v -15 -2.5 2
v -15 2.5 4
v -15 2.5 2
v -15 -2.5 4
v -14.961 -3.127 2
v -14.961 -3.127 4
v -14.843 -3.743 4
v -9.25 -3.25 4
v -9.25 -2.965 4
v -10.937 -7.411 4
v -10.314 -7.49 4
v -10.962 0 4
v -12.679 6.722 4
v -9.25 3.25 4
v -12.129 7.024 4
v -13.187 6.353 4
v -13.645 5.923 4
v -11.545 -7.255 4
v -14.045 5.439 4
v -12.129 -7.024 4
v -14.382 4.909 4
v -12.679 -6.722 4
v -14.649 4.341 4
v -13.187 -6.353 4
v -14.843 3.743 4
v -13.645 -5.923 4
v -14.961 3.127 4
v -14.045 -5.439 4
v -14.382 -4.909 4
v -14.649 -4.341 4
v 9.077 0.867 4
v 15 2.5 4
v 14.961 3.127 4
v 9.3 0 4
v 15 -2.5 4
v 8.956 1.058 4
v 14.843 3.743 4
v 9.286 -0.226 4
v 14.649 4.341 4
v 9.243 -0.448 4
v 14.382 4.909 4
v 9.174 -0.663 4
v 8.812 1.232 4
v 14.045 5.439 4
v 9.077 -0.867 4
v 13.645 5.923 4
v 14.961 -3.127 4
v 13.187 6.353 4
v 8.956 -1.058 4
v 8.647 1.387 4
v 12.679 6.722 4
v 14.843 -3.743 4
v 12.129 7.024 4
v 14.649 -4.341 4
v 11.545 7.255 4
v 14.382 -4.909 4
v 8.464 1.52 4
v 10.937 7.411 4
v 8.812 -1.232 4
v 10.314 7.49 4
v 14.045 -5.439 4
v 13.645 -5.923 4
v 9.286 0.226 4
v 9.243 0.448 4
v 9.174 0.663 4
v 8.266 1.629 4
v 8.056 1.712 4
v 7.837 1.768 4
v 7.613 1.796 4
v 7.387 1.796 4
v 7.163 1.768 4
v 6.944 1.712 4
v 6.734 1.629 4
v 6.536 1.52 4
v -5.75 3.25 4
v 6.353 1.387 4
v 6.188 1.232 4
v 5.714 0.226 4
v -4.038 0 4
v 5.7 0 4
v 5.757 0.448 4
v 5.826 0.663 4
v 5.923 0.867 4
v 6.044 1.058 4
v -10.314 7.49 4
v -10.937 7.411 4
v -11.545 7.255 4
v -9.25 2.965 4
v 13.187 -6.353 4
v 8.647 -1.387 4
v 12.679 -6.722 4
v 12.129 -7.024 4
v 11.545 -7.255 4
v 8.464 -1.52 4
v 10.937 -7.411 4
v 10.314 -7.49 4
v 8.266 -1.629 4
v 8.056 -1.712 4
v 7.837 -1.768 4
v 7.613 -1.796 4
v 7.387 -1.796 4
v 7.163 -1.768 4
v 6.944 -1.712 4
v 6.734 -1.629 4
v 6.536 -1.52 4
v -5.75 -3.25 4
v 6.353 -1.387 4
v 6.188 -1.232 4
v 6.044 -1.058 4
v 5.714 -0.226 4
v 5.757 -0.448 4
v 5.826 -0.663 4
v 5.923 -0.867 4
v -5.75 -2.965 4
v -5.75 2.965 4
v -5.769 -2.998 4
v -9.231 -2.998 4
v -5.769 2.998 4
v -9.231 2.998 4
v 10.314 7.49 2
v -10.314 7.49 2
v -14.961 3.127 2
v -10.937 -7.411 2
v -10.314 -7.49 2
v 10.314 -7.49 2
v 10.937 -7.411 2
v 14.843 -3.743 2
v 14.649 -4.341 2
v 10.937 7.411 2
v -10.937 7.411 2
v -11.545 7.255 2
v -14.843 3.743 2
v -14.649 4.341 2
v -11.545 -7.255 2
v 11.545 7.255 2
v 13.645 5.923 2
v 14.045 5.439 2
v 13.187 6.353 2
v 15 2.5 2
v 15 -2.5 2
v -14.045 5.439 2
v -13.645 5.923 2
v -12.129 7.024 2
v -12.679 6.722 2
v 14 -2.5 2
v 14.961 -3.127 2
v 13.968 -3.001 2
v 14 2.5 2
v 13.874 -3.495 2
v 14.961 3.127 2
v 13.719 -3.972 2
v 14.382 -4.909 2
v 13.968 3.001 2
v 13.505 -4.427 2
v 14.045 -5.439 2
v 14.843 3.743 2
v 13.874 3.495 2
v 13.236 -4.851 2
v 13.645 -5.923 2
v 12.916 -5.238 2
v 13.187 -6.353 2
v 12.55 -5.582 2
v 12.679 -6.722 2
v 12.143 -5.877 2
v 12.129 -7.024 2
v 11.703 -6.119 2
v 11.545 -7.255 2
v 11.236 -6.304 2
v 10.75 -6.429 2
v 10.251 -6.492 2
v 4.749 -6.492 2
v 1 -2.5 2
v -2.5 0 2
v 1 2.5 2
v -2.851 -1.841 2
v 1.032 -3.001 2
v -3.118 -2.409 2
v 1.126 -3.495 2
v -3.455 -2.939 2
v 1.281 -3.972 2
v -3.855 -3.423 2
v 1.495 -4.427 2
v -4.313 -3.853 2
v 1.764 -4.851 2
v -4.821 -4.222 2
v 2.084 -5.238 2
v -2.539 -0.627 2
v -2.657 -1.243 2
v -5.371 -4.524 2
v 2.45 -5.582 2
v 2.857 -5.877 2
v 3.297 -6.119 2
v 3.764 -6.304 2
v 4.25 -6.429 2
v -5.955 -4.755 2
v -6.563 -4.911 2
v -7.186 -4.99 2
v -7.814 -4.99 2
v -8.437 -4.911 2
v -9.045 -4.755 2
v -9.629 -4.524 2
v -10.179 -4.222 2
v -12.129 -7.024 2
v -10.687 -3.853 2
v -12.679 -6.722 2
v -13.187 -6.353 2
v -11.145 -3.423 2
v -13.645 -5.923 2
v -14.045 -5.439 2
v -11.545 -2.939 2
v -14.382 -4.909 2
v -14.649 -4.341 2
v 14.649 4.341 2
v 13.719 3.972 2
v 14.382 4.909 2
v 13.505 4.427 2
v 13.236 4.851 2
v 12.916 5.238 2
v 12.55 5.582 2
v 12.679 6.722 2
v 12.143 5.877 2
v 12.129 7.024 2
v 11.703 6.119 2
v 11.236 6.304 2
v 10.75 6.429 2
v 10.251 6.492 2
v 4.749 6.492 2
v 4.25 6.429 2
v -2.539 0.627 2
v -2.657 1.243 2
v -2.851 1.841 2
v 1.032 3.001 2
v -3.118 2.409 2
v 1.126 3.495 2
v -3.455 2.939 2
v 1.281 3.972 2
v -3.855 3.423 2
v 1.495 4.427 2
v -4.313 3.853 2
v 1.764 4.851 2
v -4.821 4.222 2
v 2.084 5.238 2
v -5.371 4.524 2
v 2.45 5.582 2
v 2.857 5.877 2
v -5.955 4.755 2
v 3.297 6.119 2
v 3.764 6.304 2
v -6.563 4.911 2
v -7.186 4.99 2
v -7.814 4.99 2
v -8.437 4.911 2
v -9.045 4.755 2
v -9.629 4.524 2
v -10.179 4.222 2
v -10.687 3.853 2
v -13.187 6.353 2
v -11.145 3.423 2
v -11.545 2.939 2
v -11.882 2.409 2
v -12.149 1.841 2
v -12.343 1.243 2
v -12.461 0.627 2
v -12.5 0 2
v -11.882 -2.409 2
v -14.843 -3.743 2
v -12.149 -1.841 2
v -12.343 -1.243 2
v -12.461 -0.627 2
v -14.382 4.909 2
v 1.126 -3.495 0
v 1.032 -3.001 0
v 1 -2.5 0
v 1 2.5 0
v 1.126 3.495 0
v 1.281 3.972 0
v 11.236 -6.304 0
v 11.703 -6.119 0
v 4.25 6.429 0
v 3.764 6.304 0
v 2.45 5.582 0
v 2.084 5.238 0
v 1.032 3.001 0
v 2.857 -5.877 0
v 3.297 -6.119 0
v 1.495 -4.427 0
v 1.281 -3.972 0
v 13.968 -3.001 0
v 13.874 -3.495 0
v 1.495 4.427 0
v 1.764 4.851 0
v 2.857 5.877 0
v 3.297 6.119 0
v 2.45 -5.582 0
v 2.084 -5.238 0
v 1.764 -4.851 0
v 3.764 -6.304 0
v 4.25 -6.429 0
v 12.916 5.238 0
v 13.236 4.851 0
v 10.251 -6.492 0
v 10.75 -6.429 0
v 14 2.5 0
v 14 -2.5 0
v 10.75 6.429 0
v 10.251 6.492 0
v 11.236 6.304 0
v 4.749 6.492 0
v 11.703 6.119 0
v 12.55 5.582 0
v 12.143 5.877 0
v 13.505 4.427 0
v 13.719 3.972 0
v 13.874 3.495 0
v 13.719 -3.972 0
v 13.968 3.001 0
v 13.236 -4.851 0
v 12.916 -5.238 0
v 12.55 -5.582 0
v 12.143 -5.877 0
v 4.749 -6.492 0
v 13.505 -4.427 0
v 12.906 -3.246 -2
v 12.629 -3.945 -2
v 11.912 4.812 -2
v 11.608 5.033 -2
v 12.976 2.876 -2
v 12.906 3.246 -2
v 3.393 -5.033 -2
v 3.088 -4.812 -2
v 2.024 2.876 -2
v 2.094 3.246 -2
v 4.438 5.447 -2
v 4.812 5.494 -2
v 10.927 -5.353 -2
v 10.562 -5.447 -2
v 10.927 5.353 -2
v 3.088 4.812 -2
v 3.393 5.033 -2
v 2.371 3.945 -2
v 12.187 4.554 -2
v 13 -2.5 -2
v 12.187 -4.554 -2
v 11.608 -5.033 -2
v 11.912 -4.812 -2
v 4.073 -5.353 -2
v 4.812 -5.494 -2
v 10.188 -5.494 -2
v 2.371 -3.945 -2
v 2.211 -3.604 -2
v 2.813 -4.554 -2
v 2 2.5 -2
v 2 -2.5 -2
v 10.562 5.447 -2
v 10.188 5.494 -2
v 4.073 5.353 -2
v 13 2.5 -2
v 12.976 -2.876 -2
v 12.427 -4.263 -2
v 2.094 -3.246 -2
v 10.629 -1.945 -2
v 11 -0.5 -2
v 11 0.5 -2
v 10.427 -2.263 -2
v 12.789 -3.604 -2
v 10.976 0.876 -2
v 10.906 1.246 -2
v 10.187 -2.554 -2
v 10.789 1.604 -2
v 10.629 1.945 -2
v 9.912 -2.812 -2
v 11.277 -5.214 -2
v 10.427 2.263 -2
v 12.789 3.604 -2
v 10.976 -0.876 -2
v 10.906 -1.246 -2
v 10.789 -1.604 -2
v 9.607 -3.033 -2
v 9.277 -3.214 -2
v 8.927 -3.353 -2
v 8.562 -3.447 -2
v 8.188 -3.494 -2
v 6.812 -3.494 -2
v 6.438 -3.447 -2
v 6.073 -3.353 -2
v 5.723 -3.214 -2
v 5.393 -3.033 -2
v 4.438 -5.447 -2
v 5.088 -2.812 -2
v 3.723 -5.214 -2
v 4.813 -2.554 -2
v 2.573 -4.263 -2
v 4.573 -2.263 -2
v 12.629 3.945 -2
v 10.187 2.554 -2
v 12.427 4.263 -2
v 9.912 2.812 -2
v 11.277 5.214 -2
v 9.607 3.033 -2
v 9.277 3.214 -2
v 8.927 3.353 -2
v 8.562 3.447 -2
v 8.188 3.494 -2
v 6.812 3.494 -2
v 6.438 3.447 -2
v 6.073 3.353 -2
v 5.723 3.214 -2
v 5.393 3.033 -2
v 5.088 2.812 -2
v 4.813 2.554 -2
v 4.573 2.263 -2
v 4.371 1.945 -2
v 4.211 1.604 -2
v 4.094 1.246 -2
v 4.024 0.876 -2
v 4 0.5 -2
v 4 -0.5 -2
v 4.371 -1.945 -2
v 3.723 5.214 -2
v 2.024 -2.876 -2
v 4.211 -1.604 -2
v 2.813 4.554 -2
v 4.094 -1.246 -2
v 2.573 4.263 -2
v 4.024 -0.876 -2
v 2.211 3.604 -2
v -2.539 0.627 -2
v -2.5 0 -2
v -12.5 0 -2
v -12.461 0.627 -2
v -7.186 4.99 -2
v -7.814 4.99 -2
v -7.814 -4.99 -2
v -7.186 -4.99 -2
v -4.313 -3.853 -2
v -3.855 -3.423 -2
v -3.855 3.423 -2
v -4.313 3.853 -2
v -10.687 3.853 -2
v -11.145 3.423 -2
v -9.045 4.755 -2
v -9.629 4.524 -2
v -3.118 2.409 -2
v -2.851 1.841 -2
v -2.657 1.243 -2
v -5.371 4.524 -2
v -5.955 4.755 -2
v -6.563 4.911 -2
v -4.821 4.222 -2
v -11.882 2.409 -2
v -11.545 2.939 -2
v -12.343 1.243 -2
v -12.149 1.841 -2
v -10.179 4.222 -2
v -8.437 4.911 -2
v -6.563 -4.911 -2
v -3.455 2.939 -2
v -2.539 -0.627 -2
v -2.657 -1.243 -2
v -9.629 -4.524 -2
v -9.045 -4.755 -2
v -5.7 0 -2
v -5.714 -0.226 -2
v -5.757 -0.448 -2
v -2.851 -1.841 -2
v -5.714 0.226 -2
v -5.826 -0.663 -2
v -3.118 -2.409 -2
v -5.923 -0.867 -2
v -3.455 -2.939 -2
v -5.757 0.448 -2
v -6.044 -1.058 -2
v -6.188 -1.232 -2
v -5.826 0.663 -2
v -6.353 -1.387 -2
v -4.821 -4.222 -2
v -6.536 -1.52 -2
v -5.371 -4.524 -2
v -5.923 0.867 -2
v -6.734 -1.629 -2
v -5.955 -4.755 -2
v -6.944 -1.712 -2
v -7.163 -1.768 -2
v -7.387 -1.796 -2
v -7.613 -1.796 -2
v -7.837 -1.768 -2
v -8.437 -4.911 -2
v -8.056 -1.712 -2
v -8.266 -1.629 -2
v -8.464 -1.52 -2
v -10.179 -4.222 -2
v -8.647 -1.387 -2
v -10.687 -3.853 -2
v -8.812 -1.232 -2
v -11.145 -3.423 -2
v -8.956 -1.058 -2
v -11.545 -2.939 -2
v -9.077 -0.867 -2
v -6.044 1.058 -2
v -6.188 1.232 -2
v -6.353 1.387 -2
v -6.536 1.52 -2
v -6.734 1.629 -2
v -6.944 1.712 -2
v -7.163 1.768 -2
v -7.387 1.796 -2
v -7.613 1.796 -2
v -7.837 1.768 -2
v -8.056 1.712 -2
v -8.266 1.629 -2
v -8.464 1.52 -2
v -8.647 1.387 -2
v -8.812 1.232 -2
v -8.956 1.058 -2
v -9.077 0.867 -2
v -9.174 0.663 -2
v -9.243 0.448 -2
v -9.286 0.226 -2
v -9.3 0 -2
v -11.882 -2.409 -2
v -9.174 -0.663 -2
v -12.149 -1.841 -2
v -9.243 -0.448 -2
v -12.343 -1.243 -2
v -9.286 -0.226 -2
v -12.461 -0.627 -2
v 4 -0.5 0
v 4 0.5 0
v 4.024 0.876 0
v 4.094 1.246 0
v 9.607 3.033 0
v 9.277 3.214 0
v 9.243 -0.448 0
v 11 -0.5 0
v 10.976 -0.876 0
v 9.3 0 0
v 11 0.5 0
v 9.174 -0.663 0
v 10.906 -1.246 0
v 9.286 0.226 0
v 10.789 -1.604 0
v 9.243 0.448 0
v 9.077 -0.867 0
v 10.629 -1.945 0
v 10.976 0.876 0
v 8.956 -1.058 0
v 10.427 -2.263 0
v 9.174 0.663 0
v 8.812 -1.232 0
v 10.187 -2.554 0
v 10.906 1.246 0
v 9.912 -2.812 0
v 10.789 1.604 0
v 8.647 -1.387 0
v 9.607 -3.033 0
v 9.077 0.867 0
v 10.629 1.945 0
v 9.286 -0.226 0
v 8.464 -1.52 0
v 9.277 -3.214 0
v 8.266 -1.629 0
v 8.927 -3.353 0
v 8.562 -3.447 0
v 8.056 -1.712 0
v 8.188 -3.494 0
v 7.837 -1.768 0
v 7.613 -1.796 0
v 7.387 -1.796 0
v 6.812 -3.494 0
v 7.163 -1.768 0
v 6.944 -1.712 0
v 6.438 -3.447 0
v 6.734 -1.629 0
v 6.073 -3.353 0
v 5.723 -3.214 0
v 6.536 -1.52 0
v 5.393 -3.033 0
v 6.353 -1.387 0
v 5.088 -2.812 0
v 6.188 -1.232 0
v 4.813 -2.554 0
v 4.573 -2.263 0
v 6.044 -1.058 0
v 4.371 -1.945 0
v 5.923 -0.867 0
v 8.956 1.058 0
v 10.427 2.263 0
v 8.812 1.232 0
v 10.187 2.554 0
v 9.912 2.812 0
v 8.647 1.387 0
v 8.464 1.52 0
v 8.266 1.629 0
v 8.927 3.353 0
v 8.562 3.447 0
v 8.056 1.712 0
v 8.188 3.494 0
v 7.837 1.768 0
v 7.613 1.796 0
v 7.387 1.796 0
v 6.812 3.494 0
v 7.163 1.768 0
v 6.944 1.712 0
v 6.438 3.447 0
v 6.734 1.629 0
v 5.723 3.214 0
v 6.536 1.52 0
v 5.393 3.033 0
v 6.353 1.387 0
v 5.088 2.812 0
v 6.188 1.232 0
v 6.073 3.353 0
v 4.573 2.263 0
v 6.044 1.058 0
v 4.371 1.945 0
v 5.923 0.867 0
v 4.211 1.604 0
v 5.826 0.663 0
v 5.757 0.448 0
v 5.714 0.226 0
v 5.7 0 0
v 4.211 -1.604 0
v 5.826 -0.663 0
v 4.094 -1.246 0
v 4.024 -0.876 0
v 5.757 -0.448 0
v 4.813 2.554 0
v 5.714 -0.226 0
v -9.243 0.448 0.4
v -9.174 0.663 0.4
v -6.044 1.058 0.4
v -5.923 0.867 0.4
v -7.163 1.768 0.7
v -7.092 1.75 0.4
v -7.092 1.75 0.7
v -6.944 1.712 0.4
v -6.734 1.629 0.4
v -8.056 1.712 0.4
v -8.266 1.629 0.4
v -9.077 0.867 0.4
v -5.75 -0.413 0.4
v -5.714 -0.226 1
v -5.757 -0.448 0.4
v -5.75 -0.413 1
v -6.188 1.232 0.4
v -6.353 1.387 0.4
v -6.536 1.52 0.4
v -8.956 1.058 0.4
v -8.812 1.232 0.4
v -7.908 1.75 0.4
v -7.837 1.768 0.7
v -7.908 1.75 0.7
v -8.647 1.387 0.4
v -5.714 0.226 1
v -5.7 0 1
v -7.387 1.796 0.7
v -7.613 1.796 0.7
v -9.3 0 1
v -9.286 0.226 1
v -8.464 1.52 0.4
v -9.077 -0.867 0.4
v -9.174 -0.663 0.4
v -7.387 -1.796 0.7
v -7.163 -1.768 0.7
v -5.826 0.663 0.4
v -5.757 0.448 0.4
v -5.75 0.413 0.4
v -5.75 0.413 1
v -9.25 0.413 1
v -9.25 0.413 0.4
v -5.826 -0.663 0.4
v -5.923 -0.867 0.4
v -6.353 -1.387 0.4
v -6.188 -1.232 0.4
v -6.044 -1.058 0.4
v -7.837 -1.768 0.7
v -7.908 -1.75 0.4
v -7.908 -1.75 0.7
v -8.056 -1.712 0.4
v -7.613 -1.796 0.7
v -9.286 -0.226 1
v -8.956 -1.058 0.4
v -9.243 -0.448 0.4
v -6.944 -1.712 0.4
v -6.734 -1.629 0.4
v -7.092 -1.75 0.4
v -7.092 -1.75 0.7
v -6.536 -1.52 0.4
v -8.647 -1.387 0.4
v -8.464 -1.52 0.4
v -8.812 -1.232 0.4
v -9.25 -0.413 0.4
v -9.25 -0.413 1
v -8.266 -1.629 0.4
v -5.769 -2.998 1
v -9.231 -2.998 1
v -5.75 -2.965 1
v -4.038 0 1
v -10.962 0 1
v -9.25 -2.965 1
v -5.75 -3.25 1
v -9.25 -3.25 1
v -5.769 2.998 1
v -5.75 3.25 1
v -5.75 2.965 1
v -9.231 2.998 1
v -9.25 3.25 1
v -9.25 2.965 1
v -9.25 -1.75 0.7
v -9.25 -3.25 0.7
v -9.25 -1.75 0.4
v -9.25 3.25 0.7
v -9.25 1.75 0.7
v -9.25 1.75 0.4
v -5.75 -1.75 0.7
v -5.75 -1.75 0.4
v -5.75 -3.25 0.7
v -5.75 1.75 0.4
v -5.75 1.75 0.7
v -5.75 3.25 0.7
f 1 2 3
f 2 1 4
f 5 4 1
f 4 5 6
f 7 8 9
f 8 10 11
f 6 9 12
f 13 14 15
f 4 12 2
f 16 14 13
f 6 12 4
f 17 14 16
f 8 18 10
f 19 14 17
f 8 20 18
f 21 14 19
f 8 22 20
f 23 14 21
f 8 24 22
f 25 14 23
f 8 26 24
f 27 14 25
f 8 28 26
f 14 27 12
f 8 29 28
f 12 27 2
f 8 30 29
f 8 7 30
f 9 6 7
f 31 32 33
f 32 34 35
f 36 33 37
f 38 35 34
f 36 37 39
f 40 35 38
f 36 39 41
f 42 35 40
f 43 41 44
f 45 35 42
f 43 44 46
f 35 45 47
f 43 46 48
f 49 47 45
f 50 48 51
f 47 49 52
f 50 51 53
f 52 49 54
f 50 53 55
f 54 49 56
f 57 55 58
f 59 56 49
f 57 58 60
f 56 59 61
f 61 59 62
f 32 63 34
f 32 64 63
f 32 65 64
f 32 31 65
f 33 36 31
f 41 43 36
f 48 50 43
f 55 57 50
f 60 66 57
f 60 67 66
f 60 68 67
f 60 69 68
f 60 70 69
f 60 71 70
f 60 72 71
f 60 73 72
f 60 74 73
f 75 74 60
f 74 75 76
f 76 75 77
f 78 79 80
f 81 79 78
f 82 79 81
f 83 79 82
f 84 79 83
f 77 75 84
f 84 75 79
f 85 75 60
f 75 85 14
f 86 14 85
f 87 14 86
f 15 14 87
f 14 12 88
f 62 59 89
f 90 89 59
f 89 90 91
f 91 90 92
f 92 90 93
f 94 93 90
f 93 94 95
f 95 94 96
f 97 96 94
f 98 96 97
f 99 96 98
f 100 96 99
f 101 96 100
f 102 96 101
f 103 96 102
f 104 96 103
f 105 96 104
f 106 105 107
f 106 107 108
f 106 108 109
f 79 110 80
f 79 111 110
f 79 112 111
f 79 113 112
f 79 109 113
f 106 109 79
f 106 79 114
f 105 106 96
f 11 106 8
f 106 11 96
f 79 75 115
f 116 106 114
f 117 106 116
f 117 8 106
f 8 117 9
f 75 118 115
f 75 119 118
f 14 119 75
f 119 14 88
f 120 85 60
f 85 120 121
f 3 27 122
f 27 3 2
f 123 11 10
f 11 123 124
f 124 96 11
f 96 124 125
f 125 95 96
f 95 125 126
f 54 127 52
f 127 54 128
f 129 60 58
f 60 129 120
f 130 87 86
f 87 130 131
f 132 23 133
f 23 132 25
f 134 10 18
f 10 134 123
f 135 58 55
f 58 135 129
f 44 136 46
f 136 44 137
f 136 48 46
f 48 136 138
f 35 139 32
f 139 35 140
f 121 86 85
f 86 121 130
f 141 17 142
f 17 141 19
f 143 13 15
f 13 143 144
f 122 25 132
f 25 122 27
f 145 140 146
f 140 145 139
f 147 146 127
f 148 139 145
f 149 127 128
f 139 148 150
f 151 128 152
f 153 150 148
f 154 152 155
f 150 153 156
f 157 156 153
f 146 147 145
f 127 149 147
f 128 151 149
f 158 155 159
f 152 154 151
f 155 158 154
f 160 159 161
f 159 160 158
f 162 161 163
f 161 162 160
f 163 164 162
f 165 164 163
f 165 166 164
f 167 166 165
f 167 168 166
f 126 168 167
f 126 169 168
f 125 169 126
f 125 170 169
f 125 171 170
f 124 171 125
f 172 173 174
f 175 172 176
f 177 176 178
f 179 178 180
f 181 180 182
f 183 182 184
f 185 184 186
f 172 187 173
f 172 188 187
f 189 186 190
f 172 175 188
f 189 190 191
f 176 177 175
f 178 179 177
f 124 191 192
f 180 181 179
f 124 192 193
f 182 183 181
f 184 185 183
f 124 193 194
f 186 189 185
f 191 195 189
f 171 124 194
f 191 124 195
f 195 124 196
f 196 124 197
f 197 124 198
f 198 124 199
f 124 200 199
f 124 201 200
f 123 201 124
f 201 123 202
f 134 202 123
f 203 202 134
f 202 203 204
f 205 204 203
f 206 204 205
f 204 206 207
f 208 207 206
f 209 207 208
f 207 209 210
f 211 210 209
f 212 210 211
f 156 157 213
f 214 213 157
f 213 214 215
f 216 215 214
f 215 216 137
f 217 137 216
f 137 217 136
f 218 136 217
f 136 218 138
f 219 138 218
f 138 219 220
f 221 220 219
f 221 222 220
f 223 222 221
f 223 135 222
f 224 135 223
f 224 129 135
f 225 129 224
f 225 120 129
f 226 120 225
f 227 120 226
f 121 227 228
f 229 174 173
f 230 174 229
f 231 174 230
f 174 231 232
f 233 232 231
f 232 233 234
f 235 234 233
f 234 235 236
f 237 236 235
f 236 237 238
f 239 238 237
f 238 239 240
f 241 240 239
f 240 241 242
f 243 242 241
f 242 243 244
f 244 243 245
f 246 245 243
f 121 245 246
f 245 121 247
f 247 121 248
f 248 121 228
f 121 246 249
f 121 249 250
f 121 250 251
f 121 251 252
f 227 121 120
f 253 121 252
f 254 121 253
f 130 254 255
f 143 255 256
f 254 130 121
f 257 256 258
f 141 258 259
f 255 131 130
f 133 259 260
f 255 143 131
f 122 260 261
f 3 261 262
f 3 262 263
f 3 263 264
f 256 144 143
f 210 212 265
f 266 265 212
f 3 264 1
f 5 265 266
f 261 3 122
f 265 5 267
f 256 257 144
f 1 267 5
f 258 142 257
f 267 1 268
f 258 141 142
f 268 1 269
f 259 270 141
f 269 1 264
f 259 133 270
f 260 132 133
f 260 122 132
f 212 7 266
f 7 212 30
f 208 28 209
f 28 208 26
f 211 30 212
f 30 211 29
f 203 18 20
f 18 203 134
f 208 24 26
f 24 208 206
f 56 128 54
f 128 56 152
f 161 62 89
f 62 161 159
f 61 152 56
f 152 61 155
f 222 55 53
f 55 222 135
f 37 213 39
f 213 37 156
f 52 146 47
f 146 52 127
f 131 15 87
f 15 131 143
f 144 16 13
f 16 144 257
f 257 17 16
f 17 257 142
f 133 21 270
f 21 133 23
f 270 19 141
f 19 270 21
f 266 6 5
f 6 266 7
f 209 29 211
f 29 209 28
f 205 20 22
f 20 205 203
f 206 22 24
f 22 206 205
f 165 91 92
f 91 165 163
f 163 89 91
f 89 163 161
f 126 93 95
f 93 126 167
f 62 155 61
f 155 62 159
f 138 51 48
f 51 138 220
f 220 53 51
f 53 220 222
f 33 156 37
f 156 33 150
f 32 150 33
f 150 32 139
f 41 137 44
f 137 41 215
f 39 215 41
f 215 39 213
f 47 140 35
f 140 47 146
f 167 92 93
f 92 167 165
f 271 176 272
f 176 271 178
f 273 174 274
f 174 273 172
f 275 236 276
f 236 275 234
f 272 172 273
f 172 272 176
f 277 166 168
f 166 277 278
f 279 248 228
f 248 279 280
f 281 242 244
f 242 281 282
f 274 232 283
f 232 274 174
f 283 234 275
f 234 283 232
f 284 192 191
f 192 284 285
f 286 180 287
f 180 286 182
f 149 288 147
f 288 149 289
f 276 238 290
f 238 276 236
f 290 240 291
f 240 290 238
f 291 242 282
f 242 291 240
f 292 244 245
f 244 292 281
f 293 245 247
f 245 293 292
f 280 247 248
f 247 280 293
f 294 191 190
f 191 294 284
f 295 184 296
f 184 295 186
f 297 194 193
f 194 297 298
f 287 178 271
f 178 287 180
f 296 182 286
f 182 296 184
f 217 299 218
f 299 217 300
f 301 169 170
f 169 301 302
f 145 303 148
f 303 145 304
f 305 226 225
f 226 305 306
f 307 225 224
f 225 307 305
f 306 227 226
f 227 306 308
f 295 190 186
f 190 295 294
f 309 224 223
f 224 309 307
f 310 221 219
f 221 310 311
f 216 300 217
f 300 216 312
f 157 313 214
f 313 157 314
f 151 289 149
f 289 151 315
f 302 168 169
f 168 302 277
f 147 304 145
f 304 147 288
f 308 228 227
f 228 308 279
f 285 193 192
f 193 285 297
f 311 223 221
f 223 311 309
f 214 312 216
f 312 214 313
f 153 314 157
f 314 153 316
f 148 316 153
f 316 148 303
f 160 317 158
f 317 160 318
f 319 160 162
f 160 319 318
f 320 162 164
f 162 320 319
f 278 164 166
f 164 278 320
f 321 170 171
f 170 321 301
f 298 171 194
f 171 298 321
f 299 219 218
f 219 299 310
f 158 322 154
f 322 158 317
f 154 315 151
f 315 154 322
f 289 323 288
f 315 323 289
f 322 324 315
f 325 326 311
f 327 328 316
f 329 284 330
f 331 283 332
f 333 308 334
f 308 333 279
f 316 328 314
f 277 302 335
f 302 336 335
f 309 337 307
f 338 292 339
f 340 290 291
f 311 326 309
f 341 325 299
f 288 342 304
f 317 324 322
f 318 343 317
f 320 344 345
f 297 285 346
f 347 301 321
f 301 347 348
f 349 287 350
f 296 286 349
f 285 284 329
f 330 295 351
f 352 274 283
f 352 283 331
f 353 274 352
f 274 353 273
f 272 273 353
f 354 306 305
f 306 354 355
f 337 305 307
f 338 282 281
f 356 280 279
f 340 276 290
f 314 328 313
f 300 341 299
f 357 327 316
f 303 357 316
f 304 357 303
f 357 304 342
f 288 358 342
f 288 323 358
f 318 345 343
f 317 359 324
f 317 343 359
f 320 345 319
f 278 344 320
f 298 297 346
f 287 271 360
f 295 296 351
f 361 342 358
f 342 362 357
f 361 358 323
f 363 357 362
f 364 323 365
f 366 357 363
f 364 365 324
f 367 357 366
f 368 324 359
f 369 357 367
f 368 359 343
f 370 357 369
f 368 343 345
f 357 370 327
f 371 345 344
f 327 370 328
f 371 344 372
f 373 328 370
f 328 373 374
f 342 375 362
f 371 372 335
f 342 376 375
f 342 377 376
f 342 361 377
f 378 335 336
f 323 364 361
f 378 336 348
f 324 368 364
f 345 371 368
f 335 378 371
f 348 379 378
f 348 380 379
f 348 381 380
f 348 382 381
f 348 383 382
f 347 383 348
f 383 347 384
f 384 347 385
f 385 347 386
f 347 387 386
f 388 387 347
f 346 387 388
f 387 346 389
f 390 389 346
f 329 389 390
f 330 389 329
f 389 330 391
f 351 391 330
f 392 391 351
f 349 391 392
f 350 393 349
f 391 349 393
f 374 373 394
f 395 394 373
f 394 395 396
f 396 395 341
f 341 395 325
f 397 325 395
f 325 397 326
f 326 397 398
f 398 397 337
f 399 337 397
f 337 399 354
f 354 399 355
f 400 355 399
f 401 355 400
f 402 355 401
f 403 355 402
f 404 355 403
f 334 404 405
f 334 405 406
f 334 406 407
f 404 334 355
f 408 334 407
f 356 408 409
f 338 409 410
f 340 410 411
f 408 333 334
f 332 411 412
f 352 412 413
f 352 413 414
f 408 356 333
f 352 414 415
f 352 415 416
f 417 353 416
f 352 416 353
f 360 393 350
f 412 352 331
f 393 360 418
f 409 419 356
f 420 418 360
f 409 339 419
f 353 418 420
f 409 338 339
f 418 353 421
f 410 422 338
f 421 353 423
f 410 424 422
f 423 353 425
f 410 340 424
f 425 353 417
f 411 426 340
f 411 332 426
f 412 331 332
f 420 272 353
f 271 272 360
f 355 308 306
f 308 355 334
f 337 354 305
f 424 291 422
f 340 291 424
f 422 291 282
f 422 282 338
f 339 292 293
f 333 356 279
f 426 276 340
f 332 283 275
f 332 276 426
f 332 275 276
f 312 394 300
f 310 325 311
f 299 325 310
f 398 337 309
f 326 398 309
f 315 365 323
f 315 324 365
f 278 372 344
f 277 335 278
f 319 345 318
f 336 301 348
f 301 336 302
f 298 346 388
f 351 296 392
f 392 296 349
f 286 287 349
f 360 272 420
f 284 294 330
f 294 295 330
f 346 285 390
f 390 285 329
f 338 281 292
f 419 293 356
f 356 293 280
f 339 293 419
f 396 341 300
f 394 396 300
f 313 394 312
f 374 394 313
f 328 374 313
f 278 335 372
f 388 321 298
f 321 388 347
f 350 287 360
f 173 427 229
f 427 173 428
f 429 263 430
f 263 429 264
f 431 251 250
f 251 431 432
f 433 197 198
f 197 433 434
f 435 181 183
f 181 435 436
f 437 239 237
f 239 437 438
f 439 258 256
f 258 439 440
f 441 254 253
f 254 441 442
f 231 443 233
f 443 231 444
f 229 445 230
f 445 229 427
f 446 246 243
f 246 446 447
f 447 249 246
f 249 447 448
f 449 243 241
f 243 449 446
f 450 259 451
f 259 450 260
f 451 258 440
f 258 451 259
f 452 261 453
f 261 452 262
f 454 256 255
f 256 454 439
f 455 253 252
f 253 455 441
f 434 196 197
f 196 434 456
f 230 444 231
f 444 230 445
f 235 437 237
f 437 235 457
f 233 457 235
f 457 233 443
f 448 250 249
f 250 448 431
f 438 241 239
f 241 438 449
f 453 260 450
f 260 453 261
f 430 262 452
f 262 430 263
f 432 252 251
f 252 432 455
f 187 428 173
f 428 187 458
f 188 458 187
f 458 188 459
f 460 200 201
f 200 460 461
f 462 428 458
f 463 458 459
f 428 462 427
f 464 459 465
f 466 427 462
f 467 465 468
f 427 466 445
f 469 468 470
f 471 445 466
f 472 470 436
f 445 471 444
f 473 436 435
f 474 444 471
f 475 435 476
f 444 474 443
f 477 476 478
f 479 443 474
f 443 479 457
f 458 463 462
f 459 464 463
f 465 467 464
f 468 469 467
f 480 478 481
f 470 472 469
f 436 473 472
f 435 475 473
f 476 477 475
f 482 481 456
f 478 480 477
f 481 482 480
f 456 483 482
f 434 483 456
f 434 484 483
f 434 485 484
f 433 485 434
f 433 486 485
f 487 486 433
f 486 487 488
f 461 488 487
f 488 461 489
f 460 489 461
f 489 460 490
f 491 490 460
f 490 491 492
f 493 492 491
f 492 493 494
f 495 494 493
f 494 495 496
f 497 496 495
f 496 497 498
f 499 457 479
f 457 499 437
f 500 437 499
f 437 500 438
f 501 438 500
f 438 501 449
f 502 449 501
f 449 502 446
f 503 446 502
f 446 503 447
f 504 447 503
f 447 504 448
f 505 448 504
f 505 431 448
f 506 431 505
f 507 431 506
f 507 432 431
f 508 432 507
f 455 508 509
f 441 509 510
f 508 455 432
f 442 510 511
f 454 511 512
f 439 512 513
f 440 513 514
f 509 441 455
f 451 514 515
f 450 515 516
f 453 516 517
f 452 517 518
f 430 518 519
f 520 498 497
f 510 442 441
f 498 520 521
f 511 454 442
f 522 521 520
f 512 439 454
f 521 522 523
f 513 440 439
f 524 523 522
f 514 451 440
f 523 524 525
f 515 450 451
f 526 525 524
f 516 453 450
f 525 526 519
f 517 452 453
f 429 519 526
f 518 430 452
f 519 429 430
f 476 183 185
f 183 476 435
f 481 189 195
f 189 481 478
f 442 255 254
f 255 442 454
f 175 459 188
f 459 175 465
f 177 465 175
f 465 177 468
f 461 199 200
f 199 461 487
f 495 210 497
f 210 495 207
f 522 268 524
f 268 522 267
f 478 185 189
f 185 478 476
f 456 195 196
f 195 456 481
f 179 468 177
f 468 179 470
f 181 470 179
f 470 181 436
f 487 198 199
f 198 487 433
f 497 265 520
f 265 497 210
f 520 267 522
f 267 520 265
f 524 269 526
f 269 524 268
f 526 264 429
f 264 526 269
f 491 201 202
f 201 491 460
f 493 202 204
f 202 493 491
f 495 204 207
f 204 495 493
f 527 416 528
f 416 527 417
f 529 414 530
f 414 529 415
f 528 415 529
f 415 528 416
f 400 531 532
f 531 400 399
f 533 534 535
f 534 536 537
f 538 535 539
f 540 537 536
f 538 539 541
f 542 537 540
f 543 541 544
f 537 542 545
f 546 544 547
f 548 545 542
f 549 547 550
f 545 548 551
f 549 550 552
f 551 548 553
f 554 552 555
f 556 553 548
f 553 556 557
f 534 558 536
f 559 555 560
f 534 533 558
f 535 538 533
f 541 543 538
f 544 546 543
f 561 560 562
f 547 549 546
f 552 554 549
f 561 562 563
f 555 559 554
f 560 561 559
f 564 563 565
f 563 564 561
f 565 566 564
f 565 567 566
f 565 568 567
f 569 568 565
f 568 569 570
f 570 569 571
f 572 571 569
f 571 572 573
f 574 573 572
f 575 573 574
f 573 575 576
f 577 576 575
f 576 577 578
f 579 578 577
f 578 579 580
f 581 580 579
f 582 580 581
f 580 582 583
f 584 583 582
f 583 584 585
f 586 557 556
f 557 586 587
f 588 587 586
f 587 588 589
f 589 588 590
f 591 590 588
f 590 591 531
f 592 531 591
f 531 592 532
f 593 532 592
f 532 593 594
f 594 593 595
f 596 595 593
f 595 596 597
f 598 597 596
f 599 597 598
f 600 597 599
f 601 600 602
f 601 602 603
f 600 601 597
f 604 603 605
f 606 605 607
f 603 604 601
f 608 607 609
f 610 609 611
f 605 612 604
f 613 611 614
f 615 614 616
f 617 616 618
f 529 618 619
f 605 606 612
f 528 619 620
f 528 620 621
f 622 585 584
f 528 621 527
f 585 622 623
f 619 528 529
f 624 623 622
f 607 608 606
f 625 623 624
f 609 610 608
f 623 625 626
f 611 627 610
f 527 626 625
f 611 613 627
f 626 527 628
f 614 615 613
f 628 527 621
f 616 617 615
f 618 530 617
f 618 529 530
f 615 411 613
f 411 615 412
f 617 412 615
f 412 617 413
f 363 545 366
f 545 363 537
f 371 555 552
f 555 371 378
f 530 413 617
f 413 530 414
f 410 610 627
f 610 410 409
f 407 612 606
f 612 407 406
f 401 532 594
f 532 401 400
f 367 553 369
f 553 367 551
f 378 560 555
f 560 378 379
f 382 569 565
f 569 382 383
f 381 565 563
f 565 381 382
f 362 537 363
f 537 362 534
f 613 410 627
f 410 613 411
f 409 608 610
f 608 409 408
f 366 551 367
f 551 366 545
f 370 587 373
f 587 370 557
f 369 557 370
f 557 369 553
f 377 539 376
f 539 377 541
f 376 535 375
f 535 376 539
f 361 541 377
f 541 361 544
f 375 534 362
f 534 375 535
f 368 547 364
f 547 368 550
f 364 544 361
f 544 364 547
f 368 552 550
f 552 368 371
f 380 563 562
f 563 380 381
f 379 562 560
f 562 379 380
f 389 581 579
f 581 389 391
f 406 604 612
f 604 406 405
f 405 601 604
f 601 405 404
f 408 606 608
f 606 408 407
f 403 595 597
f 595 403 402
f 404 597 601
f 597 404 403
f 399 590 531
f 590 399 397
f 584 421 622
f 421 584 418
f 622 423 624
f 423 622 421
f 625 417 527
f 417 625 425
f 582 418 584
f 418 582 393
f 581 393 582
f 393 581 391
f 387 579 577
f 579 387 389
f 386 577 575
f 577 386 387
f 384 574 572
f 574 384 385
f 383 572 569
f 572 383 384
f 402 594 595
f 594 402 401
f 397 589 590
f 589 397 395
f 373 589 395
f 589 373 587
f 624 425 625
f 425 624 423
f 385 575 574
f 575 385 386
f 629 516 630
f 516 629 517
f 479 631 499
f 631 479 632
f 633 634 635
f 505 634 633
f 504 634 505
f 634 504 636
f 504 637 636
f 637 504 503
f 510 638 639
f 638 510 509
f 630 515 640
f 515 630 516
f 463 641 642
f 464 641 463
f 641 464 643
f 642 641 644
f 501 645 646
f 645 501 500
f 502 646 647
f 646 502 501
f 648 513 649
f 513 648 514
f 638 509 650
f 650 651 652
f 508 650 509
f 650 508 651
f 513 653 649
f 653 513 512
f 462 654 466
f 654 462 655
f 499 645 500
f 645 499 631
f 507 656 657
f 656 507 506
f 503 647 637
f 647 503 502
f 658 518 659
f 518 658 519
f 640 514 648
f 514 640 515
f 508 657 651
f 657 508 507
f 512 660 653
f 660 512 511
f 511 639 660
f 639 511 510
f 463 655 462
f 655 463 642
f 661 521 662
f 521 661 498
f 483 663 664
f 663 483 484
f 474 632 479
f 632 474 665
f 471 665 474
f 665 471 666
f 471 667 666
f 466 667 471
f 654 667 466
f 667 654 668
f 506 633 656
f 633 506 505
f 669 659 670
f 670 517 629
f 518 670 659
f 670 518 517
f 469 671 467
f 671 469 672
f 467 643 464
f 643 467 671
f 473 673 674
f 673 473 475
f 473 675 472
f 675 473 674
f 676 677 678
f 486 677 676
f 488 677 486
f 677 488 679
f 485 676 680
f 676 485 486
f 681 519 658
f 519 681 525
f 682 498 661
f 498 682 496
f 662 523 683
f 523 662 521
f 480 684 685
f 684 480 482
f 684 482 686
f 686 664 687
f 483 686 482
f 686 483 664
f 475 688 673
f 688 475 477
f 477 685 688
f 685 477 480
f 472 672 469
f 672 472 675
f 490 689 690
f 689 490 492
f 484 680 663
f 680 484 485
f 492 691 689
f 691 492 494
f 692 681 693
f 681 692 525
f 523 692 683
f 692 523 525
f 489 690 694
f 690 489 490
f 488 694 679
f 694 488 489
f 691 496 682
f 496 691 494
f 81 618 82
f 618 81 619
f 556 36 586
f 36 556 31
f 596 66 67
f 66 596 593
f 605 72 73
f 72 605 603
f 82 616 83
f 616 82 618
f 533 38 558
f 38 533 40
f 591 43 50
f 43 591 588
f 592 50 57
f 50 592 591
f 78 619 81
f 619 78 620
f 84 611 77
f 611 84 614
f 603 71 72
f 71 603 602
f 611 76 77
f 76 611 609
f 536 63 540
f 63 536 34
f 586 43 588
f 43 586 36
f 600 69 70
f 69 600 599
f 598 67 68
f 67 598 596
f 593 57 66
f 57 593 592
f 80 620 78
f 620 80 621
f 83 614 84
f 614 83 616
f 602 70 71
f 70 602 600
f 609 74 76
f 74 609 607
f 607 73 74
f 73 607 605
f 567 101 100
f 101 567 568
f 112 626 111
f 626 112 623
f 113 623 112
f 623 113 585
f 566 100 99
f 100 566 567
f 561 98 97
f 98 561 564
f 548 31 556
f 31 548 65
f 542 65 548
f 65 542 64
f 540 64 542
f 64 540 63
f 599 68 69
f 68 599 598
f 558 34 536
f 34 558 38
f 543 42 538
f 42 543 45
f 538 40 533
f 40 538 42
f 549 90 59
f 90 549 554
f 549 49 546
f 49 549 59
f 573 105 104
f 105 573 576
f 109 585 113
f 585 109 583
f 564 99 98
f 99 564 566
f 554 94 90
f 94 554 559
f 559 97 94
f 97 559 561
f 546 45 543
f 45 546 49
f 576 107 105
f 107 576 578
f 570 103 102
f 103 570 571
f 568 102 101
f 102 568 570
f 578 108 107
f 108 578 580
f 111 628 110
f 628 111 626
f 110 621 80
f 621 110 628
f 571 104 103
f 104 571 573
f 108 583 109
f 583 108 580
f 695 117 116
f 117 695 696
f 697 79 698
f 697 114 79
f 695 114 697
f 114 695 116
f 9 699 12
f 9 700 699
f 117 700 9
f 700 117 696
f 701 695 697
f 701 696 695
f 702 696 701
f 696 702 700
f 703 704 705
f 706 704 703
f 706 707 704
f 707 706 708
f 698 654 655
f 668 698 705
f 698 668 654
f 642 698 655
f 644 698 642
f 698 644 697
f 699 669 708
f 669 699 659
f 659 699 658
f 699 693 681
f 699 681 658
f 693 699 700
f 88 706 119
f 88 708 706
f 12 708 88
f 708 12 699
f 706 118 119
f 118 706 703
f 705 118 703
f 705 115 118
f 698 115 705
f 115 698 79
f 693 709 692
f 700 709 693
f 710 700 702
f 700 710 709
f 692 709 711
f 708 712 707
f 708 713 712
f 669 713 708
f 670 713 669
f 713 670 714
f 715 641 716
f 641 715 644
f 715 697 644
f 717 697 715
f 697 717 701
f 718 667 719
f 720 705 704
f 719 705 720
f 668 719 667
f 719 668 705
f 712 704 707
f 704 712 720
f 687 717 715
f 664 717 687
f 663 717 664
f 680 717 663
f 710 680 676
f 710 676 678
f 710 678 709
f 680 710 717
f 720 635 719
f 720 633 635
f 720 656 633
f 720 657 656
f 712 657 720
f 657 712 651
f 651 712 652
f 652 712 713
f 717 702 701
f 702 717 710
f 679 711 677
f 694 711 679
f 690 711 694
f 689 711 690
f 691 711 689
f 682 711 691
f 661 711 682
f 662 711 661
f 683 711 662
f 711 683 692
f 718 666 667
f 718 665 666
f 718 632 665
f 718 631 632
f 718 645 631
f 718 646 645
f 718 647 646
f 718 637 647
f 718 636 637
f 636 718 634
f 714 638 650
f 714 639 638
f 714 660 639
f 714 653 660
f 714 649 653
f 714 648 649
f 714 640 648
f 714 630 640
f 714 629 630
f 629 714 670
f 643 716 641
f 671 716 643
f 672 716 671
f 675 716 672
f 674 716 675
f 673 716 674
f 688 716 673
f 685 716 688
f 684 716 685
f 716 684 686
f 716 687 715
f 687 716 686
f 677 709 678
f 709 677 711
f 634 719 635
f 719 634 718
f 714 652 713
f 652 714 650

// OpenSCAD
$fn = 50;


difference() {
	union() {
		translate(v = [0, 0, 2]) {
			rotate(a = [0, 0, 0]) {
				hull() {
					translate(v = [-10.0000000000, 2.5000000000, 0]) {
						rotate(a = [0, 0, 0]) {
							translate(v = [0, 0, 0]) {
								rotate(a = [0, 0, 0]) {
									cylinder(h = 2, r = 5);
								}
							}
						}
					}
					translate(v = [10.0000000000, 2.5000000000, 0]) {
						rotate(a = [0, 0, 0]) {
							translate(v = [0, 0, 0]) {
								rotate(a = [0, 0, 0]) {
									cylinder(h = 2, r = 5);
								}
							}
						}
					}
					translate(v = [-10.0000000000, -2.5000000000, 0]) {
						rotate(a = [0, 0, 0]) {
							translate(v = [0, 0, 0]) {
								rotate(a = [0, 0, 0]) {
									cylinder(h = 2, r = 5);
								}
							}
						}
					}
					translate(v = [10.0000000000, -2.5000000000, 0]) {
						rotate(a = [0, 0, 0]) {
							translate(v = [0, 0, 0]) {
								rotate(a = [0, 0, 0]) {
									cylinder(h = 2, r = 5);
								}
							}
						}
					}
				}
			}
		}
		translate(v = [7.5000000000, 0.0000000000, 0]) {
			rotate(a = [0, 0, 0]) {
				hull() {
					translate(v = [-2.5000000000, 2.5000000000, 0]) {
						rotate(a = [0, 0, 0]) {
							cylinder(h = 2, r1 = 4.0000000000, r2 = 4.0000000000);
						}
					}
					translate(v = [2.5000000000, 2.5000000000, 0]) {
						rotate(a = [0, 0, 0]) {
							cylinder(h = 2, r1 = 4.0000000000, r2 = 4.0000000000);
						}
					}
					translate(v = [-2.5000000000, -2.5000000000, 0]) {
						rotate(a = [0, 0, 0]) {
							cylinder(h = 2, r1 = 4.0000000000, r2 = 4.0000000000);
						}
					}
					translate(v = [2.5000000000, -2.5000000000, 0]) {
						rotate(a = [0, 0, 0]) {
							cylinder(h = 2, r1 = 4.0000000000, r2 = 4.0000000000);
						}
					}
				}
			}
		}
		translate(v = [7.5000000000, 0.0000000000, -2]) {
			rotate(a = [0, 180, 0]) {
				hull() {
					translate(v = [-2.5000000000, 2.5000000000, 0]) {
						rotate(a = [0, 180, 0]) {
							cylinder(h = 2, r1 = 3.0000000000, r2 = 4.0000000000);
						}
					}
					translate(v = [2.5000000000, 2.5000000000, 0]) {
						rotate(a = [0, 180, 0]) {
							cylinder(h = 2, r1 = 3.0000000000, r2 = 4.0000000000);
						}
					}
					translate(v = [-2.5000000000, -2.5000000000, 0]) {
						rotate(a = [0, 180, 0]) {
							cylinder(h = 2, r1 = 3.0000000000, r2 = 4.0000000000);
						}
					}
					translate(v = [2.5000000000, -2.5000000000, 0]) {
						rotate(a = [0, 180, 0]) {
							cylinder(h = 2, r1 = 3.0000000000, r2 = 4.0000000000);
						}
					}
				}
			}
		}
		translate(v = [-7.5000000000, 0.0000000000, -2.0000000000]) {
			rotate(a = [0, 0, 0]) {
				cylinder(h = 4, r = 5);
			}
		}
	}
	union() {
		translate(v = [7.5000000000, 0.0000000000, -2]) {
			rotate(a = [0, 0, 0]) {
				hull() {
					translate(v = [-0.5000000000, 0.5000000000, 0]) {
						rotate(a = [0, 0, 0]) {
							translate(v = [0, 0, 0]) {
								rotate(a = [0, 0, 0]) {
									cylinder(h = 2, r = 3.0000000000);
								}
							}
						}
					}
					translate(v = [0.5000000000, 0.5000000000, 0]) {
						rotate(a = [0, 0, 0]) {
							translate(v = [0, 0, 0]) {
								rotate(a = [0, 0, 0]) {
									cylinder(h = 2, r = 3.0000000000);
								}
							}
						}
					}
					translate(v = [-0.5000000000, -0.5000000000, 0]) {
						rotate(a = [0, 0, 0]) {
							translate(v = [0, 0, 0]) {
								rotate(a = [0, 0, 0]) {
									cylinder(h = 2, r = 3.0000000000);
								}
							}
						}
					}
					translate(v = [0.5000000000, -0.5000000000, 0]) {
						rotate(a = [0, 0, 0]) {
							translate(v = [0, 0, 0]) {
								rotate(a = [0, 0, 0]) {
									cylinder(h = 2, r = 3.0000000000);
								}
							}
						}
					}
				}
			}
		}
		translate(v = [-7.5000000000, 0.0000000000, -50]) {
			rotate(a = [0, 0, 0]) {
				cylinder(h = 100, r = 1.8000000000);
			}
		}
		translate(v = [7.5000000000, 0.0000000000, -50]) {
			rotate(a = [0, 0, 0]) {
				cylinder(h = 100, r = 1.8000000000);
			}
		}
		translate(v = [-7.5000000000, 0.0000000000, -50]) {
			rotate(a = [0, 0, 0]) {
				cylinder(h = 100, r = 1.8000000000);
			}
		}
		translate(v = [7.5000000000, 0.0000000000, -50]) {
			rotate(a = [0, 0, 0]) {
				cylinder(h = 100, r = 1.8000000000);
			}
		}
		translate(v = [-7.5000000000, 0.0000000000, 1]) {
			rotate(a = [0, 0, 0]) {
				#translate(v = [0, 0, 0]) {
					rotate(a = [0, 0, 0]) {
						linear_extrude(height = 3) {
							polygon(points = [[3.4620000000, 0.0000000000], [1.7310000000, 2.9981799479], [-1.7310000000, 2.9981799479], [-3.4620000000, 0.0000000000], [-1.7310000000, -2.9981799479], [1.7310000000, -2.9981799479]]);
						}
					}
				}
			}
		}
		#translate(v = [-9.2500000000, -3.2500000000, 4]) {
			rotate(a = [0, 0, 0]) {
				cube(size = [3.5000000000, 6.5000000000, 0.3000000000]);
			}
		}
		#translate(v = [-9.2500000000, -1.7500000000, 4.3000000000]) {
			rotate(a = [0, 0, 0]) {
				cube(size = [3.5000000000, 3.5000000000, 0.3000000000]);
			}
		}
		#translate(v = [-9.2500000000, -3.2500000000, 0.7000000000]) {
			rotate(a = [0, 0, 0]) {
				cube(size = [3.5000000000, 6.5000000000, 0.3000000000]);
			}
		}
		#translate(v = [-9.2500000000, -1.7500000000, 0.4000000000]) {
			rotate(a = [0, 0, 0]) {
				cube(size = [3.5000000000, 3.5000000000, 0.3000000000]);
			}
		}
	}
}
